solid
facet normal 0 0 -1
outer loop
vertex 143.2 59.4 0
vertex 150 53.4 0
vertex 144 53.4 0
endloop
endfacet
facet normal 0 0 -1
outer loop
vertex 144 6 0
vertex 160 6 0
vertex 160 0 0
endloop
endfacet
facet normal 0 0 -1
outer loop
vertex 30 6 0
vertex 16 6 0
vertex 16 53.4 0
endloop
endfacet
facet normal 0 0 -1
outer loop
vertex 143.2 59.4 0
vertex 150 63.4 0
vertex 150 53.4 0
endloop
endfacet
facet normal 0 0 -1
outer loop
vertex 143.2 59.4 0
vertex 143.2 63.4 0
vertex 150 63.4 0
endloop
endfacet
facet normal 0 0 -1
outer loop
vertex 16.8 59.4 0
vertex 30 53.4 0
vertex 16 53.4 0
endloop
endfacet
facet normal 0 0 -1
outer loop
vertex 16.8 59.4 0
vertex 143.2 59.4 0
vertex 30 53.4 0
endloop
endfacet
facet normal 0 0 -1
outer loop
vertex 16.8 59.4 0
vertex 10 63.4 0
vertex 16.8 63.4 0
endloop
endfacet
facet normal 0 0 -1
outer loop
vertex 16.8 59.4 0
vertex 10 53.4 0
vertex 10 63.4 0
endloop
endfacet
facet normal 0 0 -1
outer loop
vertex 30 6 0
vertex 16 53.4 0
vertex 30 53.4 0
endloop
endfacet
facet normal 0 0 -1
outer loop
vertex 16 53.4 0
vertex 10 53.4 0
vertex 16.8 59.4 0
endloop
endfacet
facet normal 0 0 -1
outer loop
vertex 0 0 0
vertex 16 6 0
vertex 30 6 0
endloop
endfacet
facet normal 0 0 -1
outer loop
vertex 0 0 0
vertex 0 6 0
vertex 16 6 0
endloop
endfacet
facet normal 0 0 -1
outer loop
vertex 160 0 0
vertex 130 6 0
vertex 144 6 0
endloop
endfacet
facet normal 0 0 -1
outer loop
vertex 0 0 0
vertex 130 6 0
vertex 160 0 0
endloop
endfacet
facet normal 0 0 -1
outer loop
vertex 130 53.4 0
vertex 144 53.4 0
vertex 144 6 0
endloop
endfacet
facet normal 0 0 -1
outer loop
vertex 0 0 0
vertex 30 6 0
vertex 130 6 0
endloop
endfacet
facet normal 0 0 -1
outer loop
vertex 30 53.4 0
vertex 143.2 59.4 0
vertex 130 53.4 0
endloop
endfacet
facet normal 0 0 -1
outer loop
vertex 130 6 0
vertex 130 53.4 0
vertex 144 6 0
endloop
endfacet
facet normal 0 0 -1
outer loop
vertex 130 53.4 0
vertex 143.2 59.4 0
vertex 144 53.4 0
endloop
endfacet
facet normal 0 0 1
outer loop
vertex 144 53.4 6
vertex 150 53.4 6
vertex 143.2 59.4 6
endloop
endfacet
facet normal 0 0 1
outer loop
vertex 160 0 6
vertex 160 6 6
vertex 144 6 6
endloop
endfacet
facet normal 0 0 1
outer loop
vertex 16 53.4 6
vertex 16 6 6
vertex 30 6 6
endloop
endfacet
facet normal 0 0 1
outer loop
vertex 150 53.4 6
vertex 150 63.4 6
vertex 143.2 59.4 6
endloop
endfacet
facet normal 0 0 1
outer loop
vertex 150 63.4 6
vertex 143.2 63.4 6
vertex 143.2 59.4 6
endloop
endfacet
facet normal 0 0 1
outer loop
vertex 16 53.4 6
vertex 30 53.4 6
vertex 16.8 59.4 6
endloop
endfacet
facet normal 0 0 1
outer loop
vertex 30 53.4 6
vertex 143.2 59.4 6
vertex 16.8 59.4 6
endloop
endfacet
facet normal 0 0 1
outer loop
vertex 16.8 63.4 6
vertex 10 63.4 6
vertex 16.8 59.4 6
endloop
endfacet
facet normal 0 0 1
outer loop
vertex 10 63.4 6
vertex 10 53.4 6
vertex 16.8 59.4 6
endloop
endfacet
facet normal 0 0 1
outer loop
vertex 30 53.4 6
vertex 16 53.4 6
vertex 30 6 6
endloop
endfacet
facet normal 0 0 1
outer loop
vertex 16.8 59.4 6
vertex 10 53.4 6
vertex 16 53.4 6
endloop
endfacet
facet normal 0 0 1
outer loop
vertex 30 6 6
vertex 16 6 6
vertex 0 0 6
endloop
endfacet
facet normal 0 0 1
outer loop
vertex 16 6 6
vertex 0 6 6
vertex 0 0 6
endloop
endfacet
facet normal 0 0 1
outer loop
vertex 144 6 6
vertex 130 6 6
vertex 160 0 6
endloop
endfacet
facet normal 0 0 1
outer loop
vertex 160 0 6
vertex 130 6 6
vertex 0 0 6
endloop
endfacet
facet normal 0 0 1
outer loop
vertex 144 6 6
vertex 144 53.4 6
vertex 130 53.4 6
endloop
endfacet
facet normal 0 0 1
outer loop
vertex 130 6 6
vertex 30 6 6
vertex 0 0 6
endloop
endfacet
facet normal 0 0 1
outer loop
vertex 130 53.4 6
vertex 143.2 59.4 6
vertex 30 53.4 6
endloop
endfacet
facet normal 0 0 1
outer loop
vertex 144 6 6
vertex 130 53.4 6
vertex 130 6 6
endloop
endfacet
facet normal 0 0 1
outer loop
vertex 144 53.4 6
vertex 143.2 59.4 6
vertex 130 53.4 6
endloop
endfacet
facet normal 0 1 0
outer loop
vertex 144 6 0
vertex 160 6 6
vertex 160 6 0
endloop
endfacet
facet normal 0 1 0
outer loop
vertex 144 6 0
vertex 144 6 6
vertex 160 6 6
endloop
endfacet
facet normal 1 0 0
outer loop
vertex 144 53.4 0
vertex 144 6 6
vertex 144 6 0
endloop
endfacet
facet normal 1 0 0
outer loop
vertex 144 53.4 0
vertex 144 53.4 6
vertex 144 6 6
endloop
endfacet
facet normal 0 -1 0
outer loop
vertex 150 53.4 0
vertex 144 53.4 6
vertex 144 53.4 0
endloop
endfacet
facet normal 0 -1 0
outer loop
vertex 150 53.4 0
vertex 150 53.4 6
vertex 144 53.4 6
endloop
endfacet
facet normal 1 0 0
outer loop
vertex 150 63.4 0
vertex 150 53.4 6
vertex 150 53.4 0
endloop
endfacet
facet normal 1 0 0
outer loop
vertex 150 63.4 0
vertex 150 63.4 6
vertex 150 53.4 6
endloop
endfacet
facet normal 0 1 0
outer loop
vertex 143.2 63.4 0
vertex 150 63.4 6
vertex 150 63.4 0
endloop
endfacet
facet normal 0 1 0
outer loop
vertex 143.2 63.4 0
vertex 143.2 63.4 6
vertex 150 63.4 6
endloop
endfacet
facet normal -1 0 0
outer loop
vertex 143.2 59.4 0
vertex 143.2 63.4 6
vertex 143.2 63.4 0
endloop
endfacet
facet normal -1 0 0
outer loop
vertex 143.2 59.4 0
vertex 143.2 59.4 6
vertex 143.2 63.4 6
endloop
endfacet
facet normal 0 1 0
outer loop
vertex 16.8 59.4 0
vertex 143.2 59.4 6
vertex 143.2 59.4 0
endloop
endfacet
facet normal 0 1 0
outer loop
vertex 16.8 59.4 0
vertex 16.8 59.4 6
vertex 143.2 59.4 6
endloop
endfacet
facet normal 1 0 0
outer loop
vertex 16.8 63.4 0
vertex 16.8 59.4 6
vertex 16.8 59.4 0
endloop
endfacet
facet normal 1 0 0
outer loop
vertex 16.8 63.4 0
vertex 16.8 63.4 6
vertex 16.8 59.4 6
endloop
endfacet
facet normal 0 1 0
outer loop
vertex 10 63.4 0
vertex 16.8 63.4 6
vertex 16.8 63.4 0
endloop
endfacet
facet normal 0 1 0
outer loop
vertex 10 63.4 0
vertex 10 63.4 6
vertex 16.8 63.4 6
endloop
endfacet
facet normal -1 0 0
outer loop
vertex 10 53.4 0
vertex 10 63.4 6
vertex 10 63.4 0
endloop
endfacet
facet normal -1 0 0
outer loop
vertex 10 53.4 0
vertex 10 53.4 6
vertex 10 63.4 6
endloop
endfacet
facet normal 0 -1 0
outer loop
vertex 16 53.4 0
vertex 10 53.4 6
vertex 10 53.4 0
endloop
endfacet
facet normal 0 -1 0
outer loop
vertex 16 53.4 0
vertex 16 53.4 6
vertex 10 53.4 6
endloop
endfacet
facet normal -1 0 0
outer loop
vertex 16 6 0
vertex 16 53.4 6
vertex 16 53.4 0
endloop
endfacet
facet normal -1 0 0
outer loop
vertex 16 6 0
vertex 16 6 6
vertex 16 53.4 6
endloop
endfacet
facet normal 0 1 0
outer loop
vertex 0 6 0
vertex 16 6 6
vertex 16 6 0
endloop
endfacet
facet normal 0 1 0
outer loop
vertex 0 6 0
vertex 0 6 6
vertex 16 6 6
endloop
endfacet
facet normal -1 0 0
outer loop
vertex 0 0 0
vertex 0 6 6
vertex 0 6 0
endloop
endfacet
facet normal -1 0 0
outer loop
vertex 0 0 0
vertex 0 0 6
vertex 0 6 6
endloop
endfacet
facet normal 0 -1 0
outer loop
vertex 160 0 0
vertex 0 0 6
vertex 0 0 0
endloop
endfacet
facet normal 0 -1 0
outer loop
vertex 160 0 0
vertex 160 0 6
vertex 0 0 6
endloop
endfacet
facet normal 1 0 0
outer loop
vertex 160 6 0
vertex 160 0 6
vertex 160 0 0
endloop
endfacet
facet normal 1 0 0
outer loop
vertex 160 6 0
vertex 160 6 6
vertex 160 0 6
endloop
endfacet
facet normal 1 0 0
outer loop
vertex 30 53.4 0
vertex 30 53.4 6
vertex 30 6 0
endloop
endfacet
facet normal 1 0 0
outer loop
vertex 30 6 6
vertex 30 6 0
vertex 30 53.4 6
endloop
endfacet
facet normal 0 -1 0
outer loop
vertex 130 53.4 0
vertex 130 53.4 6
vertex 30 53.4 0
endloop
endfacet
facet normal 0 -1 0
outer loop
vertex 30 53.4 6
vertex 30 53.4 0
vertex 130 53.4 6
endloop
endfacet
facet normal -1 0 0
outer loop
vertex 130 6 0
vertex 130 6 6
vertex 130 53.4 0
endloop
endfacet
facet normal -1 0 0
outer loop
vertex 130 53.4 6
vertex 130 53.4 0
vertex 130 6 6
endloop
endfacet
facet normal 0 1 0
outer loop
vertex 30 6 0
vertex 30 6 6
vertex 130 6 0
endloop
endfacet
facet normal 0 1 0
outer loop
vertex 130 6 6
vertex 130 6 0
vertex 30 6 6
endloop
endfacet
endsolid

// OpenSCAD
linear_extrude(6) difference(){ polygon([[0.0, 0], [160.0, 0], [160.0, 6], [144.0, 6], [144.0, 53.4], [150.0, 53.4], [150.0, 63.4], [143.2, 63.4], [143.2, 59.4], [16.799999999999997, 59.4], [16.799999999999997, 63.4], [10.0, 63.4], [10.0, 53.4], [16.0, 53.4], [16.0, 6], [0.0, 6]]);polygon([[30.0, 6], [130.0, 6], [130.0, 53.4], [30.0, 53.4]]);}
